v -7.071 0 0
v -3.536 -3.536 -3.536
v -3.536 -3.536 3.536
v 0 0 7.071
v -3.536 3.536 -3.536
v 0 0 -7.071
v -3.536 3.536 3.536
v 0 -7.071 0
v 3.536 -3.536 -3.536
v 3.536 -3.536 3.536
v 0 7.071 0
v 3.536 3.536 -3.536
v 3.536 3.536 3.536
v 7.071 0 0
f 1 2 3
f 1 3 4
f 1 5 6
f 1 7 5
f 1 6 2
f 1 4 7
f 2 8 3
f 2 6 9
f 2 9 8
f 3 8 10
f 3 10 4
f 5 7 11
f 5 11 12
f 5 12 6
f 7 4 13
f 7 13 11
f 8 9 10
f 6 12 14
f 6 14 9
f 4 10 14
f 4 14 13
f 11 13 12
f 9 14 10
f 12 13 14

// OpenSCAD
function z2miller(plane)=
let(p=plane/sqrt(plane*plane))
[0,acos(p[2]),atan2(p[1],p[0])];


//theta = acos(plane[2]);
//phi = atan2(plane[0],plane[1]);
//rotate([0,theta,phi])
intersection(){
rotate(z2miller([1,1,0]))
cylinder(10,100,100,center=true);

rotate(z2miller([1,0,1]))
cylinder(10,100,100,center=true);

rotate(z2miller([0,1,1]))
cylinder(10,100,100,center=true);

rotate(z2miller([1,-1,0]))
cylinder(10,100,100,center=true);

rotate(z2miller([1,0,-1]))
cylinder(10,100,100,center=true);

rotate(z2miller([0,1,-1]))
cylinder(10,100,100,center=true);

}
